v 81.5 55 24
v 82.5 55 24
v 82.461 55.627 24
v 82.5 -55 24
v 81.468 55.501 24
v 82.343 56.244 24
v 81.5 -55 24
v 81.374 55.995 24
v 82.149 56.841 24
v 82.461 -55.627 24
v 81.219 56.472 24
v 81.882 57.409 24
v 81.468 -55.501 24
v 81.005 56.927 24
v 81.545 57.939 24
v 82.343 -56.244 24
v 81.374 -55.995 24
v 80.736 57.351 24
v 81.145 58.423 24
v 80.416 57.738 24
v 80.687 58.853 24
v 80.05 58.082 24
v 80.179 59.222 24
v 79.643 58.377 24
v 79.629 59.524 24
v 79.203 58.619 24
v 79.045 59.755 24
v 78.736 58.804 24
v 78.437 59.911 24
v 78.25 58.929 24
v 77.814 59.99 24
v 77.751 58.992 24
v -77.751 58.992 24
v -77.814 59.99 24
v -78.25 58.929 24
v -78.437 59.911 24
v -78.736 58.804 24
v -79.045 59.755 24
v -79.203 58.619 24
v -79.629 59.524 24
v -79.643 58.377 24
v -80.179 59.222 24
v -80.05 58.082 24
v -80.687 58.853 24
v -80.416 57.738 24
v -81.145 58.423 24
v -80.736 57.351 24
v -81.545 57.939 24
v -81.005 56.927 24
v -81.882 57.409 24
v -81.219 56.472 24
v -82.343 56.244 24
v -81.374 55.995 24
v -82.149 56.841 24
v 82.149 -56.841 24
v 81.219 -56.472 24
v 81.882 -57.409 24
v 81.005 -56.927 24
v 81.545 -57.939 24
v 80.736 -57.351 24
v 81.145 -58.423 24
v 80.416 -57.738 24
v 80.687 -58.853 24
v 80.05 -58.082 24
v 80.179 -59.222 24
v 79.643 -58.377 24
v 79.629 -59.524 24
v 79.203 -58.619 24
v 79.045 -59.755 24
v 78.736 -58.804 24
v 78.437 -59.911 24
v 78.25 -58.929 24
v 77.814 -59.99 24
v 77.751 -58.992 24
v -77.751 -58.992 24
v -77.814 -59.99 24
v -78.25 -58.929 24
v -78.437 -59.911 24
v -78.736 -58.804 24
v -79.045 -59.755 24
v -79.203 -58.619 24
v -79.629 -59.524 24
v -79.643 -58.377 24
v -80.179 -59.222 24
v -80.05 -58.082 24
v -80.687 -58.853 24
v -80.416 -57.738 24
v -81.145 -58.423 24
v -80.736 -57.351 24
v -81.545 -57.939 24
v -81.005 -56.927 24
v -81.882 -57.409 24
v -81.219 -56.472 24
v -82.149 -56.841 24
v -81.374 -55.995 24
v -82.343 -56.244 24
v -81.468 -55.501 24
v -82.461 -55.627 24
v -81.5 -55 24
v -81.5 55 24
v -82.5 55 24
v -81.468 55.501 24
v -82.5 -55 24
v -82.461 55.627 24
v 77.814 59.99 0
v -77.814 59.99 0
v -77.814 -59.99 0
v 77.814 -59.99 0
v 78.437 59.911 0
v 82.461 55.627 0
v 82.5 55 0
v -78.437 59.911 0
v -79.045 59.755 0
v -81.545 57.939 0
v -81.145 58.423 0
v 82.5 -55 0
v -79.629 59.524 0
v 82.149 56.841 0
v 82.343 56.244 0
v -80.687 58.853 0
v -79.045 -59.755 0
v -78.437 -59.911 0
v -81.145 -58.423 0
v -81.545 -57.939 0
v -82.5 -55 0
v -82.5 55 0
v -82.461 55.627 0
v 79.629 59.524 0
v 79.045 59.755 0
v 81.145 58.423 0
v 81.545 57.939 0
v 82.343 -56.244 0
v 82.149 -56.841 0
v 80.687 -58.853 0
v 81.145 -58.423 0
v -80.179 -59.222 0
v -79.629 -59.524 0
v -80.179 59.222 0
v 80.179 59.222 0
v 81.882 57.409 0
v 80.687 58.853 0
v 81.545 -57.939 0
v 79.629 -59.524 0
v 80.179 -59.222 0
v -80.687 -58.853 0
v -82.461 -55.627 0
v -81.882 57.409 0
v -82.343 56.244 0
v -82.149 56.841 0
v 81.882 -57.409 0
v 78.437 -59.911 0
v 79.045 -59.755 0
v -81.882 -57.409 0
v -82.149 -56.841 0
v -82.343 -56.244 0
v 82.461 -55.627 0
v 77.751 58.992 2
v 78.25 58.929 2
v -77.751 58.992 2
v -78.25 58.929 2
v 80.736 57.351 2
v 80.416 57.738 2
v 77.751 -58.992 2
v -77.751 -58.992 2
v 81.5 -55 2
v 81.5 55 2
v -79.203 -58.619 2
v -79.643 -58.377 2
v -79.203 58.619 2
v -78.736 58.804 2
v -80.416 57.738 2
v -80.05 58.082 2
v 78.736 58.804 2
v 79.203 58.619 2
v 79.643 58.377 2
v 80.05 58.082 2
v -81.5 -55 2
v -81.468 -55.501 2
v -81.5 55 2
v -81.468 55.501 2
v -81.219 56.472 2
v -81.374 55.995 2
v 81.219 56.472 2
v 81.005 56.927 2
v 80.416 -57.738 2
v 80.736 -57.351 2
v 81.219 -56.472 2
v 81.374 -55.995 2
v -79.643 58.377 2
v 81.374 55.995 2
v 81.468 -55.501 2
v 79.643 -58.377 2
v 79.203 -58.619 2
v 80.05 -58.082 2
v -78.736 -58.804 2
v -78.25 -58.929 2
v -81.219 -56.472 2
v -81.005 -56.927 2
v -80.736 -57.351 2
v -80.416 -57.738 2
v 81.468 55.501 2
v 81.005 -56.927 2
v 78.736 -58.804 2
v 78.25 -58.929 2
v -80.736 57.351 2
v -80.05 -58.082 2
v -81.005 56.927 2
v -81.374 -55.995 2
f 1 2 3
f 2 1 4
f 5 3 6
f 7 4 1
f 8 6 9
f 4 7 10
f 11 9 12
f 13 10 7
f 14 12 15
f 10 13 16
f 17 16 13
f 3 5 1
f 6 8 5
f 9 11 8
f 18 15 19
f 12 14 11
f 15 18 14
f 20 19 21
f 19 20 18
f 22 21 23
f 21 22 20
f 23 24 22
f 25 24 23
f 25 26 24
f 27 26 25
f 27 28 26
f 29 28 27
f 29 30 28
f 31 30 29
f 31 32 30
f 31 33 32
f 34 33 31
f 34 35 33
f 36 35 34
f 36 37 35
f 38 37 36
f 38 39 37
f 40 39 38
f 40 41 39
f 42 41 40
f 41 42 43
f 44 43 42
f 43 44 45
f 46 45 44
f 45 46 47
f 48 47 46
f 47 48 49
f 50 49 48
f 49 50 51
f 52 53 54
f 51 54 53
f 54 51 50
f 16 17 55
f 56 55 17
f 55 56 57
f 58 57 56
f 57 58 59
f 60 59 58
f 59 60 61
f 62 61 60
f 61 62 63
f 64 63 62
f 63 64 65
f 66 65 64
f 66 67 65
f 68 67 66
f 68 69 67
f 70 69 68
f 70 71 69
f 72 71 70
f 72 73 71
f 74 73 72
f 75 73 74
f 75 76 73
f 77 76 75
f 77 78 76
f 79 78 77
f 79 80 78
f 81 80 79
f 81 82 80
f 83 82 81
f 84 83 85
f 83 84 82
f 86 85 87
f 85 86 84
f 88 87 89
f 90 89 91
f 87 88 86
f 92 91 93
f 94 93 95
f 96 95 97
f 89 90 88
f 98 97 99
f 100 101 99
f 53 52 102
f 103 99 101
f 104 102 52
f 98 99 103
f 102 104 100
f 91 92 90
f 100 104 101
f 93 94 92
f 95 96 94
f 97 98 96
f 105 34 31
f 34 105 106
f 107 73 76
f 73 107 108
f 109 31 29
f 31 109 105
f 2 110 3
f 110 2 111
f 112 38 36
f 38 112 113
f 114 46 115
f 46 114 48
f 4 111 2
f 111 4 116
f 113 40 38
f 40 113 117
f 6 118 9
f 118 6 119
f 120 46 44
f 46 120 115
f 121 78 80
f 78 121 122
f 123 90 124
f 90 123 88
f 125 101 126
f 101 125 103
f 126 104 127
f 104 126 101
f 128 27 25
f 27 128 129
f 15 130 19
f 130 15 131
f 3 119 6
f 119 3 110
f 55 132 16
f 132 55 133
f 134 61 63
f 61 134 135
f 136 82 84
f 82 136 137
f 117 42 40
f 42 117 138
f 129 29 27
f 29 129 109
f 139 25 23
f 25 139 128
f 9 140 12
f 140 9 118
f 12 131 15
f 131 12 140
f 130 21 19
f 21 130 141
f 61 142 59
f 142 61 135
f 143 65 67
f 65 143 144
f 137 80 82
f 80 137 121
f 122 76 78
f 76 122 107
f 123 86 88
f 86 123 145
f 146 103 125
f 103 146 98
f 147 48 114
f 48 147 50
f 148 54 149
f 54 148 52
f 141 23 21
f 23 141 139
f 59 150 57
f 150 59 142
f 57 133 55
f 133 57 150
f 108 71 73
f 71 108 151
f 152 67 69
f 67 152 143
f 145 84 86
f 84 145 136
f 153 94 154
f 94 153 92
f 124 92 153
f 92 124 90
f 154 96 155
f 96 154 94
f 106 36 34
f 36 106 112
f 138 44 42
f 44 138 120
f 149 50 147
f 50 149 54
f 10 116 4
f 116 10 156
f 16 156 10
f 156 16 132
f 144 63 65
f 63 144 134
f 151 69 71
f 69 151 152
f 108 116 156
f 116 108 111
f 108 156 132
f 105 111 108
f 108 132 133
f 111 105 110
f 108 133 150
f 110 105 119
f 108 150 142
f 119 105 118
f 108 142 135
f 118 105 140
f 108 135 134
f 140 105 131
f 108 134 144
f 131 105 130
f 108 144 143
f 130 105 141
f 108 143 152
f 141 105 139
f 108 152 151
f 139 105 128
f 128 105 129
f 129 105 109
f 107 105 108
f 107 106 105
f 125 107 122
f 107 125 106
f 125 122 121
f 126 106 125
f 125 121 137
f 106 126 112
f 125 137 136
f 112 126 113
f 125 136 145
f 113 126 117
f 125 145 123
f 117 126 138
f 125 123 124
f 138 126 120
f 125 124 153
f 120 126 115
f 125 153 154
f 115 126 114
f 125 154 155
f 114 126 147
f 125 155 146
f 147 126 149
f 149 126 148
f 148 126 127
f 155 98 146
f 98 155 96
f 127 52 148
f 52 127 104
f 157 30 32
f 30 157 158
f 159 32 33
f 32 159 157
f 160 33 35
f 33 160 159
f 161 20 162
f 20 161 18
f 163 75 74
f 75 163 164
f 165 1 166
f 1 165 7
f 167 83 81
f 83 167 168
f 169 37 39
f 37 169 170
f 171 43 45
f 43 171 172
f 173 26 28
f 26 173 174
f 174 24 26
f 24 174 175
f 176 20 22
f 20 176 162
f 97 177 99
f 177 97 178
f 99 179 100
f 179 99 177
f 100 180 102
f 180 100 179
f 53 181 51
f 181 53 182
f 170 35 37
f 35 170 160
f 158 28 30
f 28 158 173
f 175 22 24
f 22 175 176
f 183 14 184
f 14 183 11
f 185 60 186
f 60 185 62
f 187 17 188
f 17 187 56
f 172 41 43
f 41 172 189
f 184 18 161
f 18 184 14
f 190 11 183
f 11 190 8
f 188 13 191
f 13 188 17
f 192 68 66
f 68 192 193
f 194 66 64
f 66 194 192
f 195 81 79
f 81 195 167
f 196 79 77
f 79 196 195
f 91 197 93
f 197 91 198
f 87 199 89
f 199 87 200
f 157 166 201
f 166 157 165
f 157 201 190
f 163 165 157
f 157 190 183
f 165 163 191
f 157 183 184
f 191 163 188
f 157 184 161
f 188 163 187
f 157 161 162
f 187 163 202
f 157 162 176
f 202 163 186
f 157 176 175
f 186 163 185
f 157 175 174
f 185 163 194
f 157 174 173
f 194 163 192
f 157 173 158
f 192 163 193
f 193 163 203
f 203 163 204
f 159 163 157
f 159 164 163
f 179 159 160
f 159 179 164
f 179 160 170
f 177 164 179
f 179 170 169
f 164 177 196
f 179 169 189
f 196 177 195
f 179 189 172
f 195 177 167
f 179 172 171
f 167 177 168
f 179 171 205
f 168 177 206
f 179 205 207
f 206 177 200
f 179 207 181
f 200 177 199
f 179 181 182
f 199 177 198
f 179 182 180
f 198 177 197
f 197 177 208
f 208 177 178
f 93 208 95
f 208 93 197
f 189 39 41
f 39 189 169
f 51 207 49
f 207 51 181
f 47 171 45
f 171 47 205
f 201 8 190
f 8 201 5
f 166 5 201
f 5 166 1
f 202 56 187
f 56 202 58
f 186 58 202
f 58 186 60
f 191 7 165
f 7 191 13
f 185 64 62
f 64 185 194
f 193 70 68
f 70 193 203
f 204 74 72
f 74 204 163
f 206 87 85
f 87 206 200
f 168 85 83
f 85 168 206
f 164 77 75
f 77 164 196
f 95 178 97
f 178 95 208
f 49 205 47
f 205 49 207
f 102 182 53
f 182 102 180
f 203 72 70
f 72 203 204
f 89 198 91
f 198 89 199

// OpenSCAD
$fn = 50;


difference() {
	union() {
		hull() {
			translate(v = [-77.5000000000, 55.0000000000, 0]) {
				cylinder(h = 24, r = 5);
			}
			translate(v = [77.5000000000, 55.0000000000, 0]) {
				cylinder(h = 24, r = 5);
			}
			translate(v = [-77.5000000000, -55.0000000000, 0]) {
				cylinder(h = 24, r = 5);
			}
			translate(v = [77.5000000000, -55.0000000000, 0]) {
				cylinder(h = 24, r = 5);
			}
		}
	}
	union() {
		translate(v = [0, 0, 2]) {
			hull() {
				translate(v = [-77.5000000000, 55.0000000000, 0]) {
					cylinder(h = 22, r = 4);
				}
				translate(v = [77.5000000000, 55.0000000000, 0]) {
					cylinder(h = 22, r = 4);
				}
				translate(v = [-77.5000000000, -55.0000000000, 0]) {
					cylinder(h = 22, r = 4);
				}
				translate(v = [77.5000000000, -55.0000000000, 0]) {
					cylinder(h = 22, r = 4);
				}
			}
		}
	}
}
